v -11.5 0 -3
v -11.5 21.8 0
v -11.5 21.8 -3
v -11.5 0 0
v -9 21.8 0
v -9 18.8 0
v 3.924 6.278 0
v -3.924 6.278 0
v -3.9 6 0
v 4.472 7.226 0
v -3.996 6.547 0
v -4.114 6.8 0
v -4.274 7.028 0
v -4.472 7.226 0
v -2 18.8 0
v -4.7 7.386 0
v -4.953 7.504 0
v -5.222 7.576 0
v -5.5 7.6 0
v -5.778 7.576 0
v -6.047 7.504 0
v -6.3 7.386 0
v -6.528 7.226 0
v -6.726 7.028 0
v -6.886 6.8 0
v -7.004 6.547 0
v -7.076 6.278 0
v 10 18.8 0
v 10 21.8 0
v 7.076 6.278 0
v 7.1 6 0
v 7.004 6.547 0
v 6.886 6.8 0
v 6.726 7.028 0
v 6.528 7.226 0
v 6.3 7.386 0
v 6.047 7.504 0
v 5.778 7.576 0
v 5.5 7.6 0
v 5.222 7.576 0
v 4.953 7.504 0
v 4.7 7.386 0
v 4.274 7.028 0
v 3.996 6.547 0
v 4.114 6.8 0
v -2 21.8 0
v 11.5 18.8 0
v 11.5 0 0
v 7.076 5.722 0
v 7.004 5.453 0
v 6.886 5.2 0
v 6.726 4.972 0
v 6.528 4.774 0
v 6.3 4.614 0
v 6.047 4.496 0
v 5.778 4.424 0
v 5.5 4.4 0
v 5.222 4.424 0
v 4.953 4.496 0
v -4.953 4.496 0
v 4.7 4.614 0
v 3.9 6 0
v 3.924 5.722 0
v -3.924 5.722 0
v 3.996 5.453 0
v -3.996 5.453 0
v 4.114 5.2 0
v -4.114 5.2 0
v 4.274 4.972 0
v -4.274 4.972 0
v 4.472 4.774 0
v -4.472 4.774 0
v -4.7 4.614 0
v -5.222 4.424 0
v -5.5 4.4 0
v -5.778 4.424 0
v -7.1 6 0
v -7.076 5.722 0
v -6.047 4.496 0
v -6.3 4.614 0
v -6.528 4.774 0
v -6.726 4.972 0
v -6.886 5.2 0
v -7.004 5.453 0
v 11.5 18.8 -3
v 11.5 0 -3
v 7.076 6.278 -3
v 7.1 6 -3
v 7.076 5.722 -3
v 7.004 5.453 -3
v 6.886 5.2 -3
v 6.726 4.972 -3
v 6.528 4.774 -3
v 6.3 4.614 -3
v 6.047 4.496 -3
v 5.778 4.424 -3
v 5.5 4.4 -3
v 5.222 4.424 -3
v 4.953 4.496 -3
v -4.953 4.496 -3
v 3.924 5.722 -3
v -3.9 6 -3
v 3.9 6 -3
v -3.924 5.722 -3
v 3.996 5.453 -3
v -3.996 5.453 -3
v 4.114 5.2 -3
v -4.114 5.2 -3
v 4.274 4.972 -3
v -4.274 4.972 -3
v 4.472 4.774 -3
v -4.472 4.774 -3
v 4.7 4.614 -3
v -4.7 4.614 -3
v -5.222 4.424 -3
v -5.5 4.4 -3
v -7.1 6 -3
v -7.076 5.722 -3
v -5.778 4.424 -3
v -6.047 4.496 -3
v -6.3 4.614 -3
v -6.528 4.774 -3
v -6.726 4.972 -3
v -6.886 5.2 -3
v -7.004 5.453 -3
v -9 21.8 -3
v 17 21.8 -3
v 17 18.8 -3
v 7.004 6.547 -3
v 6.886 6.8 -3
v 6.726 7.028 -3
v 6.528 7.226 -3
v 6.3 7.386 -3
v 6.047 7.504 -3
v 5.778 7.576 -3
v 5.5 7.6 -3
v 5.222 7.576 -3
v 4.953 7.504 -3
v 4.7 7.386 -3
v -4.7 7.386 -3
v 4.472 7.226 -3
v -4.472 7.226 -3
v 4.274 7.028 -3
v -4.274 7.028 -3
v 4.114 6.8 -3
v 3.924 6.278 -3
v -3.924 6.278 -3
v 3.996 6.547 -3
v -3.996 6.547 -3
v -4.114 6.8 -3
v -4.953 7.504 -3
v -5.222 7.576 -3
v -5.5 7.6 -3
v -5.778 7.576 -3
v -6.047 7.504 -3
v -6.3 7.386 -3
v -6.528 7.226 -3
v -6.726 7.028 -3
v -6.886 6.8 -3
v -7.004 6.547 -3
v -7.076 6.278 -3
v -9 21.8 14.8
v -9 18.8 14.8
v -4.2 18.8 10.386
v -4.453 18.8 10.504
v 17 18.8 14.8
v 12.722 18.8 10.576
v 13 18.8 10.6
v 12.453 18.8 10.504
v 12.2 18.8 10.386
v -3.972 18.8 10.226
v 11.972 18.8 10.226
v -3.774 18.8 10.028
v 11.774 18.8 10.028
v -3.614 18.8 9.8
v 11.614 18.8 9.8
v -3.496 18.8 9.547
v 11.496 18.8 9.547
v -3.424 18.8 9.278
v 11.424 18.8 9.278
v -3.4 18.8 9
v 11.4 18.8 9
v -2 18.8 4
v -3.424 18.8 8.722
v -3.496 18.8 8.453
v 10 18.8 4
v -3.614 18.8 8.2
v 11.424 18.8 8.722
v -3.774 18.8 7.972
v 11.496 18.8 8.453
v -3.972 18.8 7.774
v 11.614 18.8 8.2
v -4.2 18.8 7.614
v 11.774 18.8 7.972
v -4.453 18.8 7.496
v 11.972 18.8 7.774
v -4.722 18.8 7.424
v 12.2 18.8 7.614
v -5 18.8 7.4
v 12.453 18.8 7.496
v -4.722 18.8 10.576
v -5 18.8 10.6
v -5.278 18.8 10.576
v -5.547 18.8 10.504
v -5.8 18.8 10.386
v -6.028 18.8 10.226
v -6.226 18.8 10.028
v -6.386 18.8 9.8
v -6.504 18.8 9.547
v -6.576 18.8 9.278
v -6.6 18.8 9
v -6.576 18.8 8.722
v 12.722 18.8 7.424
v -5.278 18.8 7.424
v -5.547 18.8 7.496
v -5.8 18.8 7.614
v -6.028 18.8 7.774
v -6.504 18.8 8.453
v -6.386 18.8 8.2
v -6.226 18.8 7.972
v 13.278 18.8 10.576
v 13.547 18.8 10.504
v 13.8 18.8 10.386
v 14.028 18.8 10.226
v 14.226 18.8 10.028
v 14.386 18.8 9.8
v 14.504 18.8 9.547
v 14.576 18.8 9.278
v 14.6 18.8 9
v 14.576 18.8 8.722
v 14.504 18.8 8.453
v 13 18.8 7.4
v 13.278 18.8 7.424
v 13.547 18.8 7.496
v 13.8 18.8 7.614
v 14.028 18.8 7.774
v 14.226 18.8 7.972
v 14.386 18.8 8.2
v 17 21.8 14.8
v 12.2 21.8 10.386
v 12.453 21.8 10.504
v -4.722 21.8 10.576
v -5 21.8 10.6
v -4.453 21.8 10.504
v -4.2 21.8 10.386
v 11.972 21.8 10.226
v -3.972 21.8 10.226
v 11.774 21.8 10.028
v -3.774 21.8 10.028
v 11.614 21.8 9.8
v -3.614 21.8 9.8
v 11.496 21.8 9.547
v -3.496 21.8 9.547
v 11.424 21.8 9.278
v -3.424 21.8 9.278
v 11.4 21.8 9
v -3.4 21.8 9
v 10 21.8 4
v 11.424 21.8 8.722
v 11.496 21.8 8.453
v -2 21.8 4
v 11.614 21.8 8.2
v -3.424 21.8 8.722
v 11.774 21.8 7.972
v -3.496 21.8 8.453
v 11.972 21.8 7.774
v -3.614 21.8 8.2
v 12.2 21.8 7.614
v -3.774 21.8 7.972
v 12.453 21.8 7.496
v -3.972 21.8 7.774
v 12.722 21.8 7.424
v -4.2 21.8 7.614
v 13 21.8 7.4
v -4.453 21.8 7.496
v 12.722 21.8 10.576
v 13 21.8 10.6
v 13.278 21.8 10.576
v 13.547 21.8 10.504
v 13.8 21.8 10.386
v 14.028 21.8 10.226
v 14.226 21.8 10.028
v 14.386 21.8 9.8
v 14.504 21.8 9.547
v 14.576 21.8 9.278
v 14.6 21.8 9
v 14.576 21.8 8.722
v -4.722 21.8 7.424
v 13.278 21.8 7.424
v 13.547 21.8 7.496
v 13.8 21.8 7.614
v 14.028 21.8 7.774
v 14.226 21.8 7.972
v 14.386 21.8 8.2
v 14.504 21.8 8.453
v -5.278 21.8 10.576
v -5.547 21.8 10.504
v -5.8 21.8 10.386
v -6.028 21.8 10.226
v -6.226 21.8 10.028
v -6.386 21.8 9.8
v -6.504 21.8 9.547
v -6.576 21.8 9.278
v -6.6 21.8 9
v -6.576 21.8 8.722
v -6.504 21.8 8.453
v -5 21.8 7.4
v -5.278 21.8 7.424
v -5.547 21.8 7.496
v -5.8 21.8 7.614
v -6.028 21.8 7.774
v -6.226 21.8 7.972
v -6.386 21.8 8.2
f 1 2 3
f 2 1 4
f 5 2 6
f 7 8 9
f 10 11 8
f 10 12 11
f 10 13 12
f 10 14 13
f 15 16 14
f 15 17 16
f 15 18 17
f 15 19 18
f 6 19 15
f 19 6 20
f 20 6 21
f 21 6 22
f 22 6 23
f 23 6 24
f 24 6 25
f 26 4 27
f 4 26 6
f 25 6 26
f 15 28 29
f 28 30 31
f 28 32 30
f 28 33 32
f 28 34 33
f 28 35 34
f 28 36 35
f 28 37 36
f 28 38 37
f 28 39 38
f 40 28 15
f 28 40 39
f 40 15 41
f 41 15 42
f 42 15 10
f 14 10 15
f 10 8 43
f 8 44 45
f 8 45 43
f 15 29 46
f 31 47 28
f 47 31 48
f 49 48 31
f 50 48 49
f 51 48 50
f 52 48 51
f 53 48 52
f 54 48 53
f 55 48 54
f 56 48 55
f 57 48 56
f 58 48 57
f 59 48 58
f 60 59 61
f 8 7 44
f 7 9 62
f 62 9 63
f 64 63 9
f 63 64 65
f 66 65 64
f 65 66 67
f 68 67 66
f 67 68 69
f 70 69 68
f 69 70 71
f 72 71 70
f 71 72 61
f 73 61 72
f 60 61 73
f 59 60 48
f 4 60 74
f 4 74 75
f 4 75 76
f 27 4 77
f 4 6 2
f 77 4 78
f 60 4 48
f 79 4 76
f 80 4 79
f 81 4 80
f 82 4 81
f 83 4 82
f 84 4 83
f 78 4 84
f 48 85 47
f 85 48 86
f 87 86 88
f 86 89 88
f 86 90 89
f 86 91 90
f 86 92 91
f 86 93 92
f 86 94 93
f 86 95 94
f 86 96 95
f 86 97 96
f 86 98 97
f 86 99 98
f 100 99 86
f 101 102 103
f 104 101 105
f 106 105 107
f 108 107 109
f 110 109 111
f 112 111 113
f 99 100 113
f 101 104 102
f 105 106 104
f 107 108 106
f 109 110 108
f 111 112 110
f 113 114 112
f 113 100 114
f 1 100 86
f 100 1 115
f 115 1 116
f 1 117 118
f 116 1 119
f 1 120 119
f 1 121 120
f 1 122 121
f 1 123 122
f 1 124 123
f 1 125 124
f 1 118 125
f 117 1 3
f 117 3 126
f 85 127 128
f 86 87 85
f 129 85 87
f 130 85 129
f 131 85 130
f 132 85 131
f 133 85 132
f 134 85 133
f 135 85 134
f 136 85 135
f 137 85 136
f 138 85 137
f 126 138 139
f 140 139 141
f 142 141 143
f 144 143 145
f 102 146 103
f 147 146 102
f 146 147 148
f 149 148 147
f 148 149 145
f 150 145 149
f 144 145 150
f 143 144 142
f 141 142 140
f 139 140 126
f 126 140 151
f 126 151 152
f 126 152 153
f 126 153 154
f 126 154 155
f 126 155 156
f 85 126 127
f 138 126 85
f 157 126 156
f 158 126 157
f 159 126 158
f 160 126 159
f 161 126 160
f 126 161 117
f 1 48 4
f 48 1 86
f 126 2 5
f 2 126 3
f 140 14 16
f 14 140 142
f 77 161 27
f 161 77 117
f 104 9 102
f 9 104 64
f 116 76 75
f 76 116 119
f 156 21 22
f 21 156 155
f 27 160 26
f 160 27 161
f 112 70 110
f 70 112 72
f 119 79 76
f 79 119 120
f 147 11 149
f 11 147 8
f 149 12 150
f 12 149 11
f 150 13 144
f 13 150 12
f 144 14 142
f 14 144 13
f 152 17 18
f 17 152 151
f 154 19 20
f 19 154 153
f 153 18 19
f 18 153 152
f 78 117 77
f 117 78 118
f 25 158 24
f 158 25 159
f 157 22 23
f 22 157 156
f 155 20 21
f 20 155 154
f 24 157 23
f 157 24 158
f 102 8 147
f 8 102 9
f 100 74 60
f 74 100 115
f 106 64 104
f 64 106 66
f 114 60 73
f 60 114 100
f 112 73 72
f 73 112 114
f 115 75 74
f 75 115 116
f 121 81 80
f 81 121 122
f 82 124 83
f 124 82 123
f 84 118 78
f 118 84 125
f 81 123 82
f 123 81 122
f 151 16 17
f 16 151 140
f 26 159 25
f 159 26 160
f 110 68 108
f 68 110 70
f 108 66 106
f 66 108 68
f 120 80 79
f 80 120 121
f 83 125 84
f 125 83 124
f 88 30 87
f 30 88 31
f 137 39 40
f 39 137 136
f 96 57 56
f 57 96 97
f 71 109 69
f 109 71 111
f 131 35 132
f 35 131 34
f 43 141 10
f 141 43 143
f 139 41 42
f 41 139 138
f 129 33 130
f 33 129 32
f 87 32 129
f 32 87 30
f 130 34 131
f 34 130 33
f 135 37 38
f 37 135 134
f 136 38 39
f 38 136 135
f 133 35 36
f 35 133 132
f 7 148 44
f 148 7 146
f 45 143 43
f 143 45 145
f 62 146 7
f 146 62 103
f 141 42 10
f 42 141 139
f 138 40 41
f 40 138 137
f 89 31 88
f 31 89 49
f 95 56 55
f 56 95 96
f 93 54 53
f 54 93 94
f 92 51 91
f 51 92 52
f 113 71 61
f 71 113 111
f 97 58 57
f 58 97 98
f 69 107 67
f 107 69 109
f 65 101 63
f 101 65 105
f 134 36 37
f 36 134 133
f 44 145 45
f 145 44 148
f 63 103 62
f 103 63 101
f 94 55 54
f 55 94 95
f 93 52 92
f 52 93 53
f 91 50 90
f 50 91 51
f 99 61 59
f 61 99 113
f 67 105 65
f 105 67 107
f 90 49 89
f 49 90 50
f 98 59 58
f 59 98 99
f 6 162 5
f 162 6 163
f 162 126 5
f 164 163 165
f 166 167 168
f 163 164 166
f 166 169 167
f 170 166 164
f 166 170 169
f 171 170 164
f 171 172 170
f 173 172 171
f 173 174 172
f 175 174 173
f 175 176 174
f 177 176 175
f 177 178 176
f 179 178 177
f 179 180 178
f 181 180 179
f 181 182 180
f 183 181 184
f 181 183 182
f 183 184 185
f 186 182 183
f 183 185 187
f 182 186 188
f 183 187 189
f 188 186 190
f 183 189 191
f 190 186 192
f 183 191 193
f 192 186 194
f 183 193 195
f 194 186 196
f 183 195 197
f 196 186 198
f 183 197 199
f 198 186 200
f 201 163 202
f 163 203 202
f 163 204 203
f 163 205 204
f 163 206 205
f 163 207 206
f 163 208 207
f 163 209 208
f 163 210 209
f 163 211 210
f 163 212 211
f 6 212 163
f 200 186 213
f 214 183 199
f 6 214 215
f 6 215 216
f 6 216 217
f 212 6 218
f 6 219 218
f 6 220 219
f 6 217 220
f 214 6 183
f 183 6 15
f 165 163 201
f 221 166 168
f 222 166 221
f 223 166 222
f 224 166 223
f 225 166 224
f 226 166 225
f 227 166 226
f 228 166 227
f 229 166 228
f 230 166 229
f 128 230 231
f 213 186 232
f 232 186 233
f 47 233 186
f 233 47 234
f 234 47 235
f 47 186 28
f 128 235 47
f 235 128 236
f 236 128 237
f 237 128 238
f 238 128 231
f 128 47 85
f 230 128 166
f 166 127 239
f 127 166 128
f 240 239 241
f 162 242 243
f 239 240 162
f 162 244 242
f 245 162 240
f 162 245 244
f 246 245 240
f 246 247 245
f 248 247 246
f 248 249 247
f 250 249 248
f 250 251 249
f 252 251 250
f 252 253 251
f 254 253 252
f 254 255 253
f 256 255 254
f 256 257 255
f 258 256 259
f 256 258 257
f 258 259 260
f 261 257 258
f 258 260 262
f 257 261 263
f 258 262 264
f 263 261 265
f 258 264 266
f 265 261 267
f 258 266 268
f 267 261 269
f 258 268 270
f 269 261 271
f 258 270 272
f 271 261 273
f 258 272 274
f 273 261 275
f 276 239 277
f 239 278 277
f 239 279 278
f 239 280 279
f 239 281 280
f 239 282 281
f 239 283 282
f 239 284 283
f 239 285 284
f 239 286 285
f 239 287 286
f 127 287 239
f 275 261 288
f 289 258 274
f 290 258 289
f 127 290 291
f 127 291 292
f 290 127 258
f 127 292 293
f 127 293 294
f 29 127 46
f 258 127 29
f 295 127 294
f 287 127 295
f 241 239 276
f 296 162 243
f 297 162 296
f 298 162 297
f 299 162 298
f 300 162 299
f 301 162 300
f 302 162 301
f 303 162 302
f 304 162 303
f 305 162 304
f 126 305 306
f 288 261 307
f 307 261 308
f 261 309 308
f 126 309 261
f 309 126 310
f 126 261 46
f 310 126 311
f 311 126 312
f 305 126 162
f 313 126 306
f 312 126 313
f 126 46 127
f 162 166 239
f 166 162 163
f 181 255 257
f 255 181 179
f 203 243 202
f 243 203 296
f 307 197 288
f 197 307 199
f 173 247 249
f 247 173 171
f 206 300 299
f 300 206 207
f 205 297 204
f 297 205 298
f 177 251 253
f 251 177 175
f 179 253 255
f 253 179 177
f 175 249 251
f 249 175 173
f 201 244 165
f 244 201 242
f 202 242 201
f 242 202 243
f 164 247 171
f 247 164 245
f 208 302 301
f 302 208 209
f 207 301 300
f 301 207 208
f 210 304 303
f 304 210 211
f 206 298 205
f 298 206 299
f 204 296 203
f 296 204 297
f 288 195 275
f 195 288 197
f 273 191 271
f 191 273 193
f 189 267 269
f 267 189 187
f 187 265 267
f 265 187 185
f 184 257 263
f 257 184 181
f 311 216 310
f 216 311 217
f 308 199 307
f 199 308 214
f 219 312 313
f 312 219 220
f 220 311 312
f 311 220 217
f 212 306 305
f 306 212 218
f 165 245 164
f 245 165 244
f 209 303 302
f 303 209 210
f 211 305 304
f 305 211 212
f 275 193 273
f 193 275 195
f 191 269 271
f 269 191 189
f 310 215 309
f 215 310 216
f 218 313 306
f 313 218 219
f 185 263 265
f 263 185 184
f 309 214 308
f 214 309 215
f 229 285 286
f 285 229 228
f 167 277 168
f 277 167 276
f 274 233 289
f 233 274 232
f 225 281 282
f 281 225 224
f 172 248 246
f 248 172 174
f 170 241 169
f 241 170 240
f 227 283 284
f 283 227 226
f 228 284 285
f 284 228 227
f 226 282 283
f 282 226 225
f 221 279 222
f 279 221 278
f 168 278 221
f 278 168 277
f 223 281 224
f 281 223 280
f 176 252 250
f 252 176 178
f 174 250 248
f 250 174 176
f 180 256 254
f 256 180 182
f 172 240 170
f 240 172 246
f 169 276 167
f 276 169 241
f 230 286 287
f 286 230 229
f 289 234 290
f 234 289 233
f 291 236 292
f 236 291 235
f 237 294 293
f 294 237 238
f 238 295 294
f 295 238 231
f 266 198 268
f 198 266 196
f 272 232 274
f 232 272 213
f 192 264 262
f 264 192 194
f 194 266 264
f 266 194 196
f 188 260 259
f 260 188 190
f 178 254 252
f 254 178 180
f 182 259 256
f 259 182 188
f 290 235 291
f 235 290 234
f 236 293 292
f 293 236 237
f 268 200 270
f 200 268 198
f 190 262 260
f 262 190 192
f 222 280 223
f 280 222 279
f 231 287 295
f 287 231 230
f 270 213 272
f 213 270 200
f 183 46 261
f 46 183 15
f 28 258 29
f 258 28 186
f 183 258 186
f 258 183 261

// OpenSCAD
// Tronxy XY-2 Pro 3D/BL Touch Mount
//
// replacement mount to fit a 3D Touc/BL Touch to a Tronxy XY-2 Pro

$fn = 36;

THICKNESS                  = 3.0;
HOTEND_HOLE_DIA            = 3.2;
BL_TOUCH_HOLE_DIA          = 3.2;

BL_TOUCH_HOLE_SPACING     = 18.0;
BL_TOUCH_LENGTH_STOWED    = 41.8;
BL_TOUCH_TOP_WIDTH        = BL_TOUCH_HOLE_SPACING + 8.0;
BL_TOUCH_TOP_DEPTH        = 11.6;
BL_TOUCH_Z_OFFSET_STOWED  =  2.5;
BL_TOUCH_X_OFFSET         =  4.0;
BL_TOUCH_Y_OFFSET         =  9.0;

BL_TOUCH_TAB_WIDTH        = BL_TOUCH_TOP_WIDTH;
BL_TOUCH_TAB_DEPTH        = BL_TOUCH_Y_OFFSET 
                              + BL_TOUCH_TOP_DEPTH/2
                              + THICKNESS; 

HOTEND_HOLE_HEIGHT        = 31.5;
HOTEND_HOLE_SPACING       = 11.0;
HOTEND_TAB_WIDTH          = HOTEND_HOLE_SPACING + 12;
HOTEND_TAB_DEPTH          = BL_TOUCH_Z_OFFSET_STOWED +                          + BL_TOUCH_LENGTH_STOWED 
                              - HOTEND_HOLE_HEIGHT + 6;
                              
CABLE_SLOT_WIDTH          = 12.0;
CABLE_SLOT_DEPTH          = 4.0;


// Base (tab against holend casing)
//
difference () {
  translate([-HOTEND_TAB_WIDTH/2, 0, -THICKNESS]) 
    cube([HOTEND_TAB_WIDTH, HOTEND_TAB_DEPTH + THICKNESS, THICKNESS],     center = false);

  //mounting hole
  translate([-HOTEND_HOLE_SPACING/2, 6, -THICKNESS/2])
    cylinder(h=THICKNESS, d=HOTEND_HOLE_DIA, center=true);

  //mounting hole
  translate([HOTEND_HOLE_SPACING/2, 6, -THICKNESS/2])
    cylinder(h=THICKNESS, d=HOTEND_HOLE_DIA, center=true);
}

// Top (BLTouch mounting)
//
difference () {
  translate([-BL_TOUCH_TAB_WIDTH/2 + BL_TOUCH_X_OFFSET, 
              HOTEND_TAB_DEPTH + THICKNESS, -THICKNESS])
    rotate([90,0,0]) {
      difference() {
        // top plate
        cube([BL_TOUCH_TAB_WIDTH, BL_TOUCH_TAB_DEPTH, THICKNESS], 
              center = false);
      
        //mounting hole
        translate([-BL_TOUCH_HOLE_SPACING/2
                     + BL_TOUCH_TAB_WIDTH/2,
                    BL_TOUCH_Y_OFFSET + THICKNESS, 
                    THICKNESS/2])
          cylinder(h=THICKNESS, d=HOTEND_HOLE_DIA, center=true);
        
        //mounting hole
        translate([BL_TOUCH_HOLE_SPACING/2 
                     + BL_TOUCH_TAB_WIDTH/2, 
                    BL_TOUCH_Y_OFFSET + THICKNESS, 
                    THICKNESS/2])
          cylinder(h=THICKNESS, d=HOTEND_HOLE_DIA, center=true);

        //cable slot
        translate([BL_TOUCH_TAB_WIDTH/2 - CABLE_SLOT_WIDTH/2, 
                   THICKNESS,
                   0])
          cube([CABLE_SLOT_WIDTH,CABLE_SLOT_DEPTH,THICKNESS], center=false);
      }
    }
}
